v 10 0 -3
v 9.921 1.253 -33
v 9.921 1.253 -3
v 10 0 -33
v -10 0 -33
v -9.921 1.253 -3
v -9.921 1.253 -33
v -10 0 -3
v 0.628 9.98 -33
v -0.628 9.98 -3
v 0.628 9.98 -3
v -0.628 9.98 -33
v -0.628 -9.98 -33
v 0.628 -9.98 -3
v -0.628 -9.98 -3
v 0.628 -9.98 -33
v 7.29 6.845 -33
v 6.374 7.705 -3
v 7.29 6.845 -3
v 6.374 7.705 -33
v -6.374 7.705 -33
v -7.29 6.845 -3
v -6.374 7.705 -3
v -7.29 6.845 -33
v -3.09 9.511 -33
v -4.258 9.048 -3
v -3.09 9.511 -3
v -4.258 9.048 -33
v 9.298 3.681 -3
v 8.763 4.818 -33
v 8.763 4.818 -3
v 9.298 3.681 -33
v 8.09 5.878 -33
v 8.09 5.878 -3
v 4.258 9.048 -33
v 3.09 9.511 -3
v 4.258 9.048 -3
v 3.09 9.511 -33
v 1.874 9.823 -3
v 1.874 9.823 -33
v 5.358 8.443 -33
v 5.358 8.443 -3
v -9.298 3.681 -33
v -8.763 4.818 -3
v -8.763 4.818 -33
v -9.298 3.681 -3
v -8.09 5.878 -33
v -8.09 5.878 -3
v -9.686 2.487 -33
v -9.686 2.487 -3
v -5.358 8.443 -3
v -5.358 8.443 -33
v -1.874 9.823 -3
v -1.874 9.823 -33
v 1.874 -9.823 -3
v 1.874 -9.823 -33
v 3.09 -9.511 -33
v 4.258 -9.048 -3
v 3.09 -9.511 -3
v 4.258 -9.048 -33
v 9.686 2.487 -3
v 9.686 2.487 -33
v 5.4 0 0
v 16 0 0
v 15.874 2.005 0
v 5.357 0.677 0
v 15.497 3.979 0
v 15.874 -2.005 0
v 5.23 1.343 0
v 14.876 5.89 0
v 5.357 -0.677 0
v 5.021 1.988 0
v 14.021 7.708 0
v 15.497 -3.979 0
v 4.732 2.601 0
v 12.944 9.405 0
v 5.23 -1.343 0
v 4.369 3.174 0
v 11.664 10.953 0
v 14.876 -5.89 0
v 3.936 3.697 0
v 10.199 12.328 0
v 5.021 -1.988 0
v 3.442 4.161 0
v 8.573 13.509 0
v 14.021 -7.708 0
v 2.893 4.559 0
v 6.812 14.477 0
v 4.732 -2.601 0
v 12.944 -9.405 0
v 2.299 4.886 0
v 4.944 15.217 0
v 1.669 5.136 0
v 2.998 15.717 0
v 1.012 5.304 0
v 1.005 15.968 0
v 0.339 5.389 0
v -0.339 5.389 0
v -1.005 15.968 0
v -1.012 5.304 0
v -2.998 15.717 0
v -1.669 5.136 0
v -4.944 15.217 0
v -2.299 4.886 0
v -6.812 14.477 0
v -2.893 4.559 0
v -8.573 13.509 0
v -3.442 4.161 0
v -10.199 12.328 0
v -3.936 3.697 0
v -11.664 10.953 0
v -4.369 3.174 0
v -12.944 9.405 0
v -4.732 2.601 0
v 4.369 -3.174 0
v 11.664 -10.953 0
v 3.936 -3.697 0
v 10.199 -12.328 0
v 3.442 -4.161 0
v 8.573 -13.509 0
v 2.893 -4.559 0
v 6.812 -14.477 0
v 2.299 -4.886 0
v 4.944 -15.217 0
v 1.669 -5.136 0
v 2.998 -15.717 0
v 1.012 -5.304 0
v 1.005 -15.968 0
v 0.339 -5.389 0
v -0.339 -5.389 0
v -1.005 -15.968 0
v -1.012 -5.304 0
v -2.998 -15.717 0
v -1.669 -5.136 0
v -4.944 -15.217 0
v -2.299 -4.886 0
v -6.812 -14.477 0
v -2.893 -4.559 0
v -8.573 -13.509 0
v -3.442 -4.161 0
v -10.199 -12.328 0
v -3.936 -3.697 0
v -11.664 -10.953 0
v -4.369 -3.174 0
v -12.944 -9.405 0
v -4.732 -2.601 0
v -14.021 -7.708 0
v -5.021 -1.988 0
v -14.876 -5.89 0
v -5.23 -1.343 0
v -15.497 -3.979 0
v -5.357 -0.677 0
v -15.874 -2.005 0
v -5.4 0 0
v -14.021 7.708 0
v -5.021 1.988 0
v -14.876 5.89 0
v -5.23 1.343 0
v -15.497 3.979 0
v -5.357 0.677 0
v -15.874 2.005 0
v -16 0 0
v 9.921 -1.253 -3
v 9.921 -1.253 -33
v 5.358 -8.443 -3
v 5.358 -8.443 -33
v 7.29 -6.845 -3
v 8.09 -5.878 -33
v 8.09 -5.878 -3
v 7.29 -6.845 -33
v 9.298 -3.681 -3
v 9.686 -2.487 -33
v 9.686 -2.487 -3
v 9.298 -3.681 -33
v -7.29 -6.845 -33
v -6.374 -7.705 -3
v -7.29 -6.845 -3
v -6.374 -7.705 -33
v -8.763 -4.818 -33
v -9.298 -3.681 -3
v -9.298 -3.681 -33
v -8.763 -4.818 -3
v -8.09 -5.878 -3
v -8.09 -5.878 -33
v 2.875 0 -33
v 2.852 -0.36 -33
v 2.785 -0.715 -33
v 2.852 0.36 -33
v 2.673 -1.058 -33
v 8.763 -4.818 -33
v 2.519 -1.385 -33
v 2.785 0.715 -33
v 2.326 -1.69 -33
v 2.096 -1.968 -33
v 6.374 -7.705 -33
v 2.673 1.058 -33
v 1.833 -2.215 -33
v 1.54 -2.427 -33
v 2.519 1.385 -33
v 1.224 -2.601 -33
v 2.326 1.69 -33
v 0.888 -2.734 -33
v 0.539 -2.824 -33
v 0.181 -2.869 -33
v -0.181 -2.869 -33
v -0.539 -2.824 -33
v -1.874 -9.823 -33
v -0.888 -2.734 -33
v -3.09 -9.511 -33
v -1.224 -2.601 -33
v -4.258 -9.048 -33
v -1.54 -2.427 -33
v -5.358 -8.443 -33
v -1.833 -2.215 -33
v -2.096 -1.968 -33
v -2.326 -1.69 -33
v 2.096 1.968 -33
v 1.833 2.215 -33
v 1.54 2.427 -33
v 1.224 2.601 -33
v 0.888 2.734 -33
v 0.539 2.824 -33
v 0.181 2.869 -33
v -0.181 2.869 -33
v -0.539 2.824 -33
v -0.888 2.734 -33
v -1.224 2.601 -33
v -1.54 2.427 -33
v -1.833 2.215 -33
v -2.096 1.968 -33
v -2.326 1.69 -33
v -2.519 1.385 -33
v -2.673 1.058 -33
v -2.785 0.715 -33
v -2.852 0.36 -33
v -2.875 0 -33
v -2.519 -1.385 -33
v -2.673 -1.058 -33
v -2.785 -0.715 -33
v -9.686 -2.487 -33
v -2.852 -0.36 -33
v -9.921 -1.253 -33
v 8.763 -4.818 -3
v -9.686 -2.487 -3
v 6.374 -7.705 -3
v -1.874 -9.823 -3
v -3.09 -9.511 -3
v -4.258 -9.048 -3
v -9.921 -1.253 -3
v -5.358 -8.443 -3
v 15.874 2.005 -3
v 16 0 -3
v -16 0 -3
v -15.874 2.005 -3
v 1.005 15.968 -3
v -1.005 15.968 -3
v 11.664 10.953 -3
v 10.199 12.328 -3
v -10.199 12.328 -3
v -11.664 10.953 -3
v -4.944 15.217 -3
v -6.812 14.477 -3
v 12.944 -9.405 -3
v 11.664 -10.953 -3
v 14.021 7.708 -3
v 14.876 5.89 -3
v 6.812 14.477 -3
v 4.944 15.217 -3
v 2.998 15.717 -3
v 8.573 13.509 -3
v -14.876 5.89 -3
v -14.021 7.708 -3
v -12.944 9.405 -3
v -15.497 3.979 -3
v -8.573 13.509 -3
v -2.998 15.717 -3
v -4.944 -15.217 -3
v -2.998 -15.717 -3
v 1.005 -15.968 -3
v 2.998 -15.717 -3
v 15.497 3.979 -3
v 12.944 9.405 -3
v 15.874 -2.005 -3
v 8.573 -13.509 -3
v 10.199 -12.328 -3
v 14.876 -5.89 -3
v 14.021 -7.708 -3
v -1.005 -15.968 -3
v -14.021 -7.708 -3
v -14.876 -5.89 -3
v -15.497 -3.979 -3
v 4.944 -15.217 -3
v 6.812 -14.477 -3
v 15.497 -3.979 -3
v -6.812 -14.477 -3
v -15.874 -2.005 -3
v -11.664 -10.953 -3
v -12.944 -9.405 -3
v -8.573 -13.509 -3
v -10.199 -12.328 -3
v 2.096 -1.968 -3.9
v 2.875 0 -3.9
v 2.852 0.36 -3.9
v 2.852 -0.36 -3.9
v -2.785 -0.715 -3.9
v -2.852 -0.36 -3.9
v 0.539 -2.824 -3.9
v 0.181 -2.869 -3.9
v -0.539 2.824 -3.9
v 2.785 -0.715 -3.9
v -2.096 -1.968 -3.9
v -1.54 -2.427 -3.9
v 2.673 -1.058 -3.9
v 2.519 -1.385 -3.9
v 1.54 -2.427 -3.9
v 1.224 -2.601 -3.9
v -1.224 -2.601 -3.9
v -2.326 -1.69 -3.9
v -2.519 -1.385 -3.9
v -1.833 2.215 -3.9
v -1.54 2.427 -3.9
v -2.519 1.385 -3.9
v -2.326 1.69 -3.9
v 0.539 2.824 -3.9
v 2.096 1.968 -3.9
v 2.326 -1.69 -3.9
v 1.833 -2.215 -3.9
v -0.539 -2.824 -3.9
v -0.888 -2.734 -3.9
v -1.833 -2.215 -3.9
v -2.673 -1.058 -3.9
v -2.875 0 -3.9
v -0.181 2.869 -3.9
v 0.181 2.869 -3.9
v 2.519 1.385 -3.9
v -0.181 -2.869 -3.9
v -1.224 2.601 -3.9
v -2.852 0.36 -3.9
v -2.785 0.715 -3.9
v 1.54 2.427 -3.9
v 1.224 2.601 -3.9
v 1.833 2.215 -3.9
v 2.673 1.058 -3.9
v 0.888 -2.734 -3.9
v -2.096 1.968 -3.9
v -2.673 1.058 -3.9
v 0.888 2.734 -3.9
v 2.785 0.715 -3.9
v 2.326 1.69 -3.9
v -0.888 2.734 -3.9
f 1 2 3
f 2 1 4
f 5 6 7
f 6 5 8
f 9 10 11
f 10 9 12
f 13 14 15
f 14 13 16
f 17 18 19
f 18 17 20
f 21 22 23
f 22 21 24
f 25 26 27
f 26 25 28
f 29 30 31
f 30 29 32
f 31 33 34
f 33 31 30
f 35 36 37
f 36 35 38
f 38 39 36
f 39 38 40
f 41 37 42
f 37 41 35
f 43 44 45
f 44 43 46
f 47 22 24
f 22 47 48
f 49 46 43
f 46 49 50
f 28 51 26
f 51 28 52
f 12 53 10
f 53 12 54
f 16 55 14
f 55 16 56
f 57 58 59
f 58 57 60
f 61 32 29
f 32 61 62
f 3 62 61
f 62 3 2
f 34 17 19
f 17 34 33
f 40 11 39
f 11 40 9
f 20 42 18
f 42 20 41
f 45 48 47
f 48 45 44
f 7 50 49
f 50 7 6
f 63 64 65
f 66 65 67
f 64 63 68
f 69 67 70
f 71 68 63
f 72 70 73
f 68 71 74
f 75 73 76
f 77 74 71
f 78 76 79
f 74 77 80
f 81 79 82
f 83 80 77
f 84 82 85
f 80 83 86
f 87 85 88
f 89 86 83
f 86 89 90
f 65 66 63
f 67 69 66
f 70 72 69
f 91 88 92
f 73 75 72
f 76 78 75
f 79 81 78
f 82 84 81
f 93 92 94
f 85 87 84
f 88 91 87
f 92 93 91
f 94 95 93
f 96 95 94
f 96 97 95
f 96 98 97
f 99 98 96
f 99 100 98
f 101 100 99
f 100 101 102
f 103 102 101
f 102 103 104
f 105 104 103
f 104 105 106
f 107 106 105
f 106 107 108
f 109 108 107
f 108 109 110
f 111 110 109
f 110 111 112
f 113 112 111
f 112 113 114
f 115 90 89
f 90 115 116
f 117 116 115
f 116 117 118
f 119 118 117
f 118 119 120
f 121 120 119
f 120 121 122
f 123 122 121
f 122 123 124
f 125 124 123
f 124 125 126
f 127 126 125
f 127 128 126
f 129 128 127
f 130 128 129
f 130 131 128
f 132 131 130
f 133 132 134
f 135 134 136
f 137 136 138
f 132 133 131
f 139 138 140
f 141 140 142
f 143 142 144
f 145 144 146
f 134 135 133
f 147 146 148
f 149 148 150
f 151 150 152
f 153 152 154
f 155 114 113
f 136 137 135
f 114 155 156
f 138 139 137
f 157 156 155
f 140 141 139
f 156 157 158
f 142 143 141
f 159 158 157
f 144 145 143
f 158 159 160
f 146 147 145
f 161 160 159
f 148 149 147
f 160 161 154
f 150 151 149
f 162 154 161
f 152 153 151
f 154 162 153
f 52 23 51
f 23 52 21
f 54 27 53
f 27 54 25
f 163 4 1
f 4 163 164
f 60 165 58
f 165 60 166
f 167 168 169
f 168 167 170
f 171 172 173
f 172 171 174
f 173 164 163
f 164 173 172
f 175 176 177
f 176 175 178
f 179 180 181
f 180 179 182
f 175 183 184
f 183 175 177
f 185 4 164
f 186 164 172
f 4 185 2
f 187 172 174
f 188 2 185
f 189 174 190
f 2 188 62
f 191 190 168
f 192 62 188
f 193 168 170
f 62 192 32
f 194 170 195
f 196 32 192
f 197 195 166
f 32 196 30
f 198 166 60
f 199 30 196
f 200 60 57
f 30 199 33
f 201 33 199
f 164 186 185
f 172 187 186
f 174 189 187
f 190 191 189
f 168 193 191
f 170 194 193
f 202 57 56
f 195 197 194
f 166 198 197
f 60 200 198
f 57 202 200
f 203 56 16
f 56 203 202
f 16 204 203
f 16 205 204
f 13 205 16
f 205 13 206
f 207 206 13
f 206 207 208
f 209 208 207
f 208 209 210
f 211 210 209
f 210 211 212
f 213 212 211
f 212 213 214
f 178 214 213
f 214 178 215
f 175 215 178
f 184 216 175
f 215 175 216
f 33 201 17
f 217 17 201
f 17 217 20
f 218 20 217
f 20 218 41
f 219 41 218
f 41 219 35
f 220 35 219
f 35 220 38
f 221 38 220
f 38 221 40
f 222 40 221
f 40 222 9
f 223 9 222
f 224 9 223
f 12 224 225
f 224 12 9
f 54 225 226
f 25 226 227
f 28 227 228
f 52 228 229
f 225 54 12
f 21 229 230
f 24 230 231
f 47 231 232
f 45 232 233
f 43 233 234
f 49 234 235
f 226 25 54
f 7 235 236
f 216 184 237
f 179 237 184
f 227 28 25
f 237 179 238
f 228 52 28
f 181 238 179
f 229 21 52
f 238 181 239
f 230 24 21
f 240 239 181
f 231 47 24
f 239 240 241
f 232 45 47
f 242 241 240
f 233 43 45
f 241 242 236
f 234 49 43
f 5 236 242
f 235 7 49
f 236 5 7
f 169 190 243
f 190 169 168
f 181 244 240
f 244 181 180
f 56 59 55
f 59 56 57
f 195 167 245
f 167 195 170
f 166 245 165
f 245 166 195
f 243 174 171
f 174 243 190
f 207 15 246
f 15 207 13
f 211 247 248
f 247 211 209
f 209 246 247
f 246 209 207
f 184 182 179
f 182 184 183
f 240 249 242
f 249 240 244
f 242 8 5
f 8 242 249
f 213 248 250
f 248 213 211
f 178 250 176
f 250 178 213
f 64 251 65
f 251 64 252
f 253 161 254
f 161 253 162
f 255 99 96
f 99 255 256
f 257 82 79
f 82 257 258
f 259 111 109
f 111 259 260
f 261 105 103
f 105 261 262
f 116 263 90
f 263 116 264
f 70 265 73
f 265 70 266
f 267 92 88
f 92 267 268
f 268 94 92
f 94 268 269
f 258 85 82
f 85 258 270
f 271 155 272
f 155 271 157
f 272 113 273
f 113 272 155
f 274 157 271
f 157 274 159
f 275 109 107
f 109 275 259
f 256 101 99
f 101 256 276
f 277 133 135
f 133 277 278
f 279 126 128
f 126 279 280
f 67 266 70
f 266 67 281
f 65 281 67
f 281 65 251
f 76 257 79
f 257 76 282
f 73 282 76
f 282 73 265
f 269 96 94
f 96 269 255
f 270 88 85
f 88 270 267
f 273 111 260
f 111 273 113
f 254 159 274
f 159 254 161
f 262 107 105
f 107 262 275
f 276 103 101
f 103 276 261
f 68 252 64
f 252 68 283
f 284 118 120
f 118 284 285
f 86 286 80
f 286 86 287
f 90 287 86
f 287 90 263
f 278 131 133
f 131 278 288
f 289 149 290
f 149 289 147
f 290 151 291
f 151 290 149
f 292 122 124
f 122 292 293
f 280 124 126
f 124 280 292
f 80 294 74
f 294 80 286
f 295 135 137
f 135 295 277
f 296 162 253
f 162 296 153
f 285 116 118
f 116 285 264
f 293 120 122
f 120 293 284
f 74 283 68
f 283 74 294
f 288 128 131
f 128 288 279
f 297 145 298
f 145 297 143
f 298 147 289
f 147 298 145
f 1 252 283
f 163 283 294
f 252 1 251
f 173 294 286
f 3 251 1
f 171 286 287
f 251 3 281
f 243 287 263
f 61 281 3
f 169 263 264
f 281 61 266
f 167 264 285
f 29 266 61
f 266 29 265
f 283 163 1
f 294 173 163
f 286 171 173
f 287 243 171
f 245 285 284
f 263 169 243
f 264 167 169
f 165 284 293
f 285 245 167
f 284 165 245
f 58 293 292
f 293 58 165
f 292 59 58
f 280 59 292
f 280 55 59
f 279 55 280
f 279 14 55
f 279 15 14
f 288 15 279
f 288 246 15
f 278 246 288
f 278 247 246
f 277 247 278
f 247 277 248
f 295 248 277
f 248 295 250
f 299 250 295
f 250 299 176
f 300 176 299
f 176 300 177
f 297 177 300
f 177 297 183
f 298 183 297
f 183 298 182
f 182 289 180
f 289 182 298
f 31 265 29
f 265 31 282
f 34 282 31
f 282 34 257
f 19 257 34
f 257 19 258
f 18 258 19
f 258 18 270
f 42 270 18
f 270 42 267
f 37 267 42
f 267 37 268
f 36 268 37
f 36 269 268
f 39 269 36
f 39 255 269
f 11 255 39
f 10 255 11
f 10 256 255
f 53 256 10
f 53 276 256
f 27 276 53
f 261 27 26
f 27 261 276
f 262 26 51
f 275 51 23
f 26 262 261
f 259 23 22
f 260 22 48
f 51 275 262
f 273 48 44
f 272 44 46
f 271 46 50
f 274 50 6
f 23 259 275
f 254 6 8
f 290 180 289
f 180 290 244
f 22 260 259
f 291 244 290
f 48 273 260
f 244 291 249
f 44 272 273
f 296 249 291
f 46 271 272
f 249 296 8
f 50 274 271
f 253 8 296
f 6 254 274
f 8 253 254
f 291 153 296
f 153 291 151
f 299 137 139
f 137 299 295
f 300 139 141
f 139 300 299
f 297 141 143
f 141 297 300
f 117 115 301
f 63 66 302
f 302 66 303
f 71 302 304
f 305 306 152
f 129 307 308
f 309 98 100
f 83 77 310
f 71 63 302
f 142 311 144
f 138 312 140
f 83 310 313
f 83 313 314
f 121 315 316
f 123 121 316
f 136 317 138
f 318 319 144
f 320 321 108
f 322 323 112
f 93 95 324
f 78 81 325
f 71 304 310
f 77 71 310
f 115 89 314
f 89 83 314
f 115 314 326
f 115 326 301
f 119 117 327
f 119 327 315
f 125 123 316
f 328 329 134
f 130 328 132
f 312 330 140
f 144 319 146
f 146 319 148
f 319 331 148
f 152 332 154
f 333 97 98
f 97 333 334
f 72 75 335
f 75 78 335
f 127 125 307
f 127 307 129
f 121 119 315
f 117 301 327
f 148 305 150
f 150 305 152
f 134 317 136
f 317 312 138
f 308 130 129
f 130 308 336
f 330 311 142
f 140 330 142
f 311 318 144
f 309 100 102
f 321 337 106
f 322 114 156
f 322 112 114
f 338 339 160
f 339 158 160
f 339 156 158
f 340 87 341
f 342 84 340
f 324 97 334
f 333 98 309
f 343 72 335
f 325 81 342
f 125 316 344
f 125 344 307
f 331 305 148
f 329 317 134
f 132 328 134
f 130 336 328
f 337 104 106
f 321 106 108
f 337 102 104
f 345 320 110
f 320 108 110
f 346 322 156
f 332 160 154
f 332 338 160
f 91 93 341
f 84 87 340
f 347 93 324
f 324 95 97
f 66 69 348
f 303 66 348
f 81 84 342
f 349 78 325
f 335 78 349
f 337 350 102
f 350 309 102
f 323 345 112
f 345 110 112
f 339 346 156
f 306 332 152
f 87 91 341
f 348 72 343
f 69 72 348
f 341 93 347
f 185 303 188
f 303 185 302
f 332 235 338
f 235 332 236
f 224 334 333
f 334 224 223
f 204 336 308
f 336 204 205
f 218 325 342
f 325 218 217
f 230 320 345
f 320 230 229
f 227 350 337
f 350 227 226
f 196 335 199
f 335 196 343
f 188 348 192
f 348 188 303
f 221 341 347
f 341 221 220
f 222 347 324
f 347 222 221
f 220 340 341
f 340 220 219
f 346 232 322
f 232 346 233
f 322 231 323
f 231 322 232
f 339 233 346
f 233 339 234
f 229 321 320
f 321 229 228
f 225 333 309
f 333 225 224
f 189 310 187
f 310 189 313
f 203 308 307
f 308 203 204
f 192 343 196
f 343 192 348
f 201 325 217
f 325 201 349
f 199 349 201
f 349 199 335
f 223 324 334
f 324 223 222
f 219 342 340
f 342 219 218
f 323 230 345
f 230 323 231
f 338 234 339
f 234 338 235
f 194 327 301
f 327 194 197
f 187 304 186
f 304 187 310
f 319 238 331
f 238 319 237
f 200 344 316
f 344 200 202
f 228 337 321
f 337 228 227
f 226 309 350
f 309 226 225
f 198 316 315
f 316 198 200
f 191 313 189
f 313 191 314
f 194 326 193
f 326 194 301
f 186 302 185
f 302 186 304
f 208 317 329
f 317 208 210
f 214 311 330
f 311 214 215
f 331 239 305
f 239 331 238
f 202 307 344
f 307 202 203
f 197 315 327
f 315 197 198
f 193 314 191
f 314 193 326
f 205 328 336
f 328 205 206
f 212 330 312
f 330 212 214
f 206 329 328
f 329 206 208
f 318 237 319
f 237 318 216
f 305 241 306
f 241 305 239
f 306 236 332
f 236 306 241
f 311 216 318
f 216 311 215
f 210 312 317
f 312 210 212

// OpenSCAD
$fn = 50;


difference() {
	union() {
		translate(v = [0, 0, -33.0000000000]) {
			cylinder(h = 33, r = 10.0000000000);
		}
		translate(v = [0, 0, -3.0000000000]) {
			cylinder(h = 3, r = 16.0000000000);
		}
	}
	union() {
		translate(v = [0, 0, 0]) {
			rotate(a = [0, 0, 0]) {
				difference() {
					union() {
						#translate(v = [0, 0, -33.0000000000]) {
							cylinder(h = 33, r = 2.6000000000);
						}
						#translate(v = [0, 0, -3.9000000000]) {
							cylinder(h = 3.9000000000, r = 10.0000000000, r1 = 2.8750000000, r2 = 5.4000000000);
						}
						#translate(v = [0, 0, -33.0000000000]) {
							cylinder(h = 33, r = 2.8750000000);
						}
						#translate(v = [0, 0, -33.0000000000]) {
							cylinder(h = 33, r = 2.6000000000);
						}
					}
					union();
				}
			}
		}
	}
}
